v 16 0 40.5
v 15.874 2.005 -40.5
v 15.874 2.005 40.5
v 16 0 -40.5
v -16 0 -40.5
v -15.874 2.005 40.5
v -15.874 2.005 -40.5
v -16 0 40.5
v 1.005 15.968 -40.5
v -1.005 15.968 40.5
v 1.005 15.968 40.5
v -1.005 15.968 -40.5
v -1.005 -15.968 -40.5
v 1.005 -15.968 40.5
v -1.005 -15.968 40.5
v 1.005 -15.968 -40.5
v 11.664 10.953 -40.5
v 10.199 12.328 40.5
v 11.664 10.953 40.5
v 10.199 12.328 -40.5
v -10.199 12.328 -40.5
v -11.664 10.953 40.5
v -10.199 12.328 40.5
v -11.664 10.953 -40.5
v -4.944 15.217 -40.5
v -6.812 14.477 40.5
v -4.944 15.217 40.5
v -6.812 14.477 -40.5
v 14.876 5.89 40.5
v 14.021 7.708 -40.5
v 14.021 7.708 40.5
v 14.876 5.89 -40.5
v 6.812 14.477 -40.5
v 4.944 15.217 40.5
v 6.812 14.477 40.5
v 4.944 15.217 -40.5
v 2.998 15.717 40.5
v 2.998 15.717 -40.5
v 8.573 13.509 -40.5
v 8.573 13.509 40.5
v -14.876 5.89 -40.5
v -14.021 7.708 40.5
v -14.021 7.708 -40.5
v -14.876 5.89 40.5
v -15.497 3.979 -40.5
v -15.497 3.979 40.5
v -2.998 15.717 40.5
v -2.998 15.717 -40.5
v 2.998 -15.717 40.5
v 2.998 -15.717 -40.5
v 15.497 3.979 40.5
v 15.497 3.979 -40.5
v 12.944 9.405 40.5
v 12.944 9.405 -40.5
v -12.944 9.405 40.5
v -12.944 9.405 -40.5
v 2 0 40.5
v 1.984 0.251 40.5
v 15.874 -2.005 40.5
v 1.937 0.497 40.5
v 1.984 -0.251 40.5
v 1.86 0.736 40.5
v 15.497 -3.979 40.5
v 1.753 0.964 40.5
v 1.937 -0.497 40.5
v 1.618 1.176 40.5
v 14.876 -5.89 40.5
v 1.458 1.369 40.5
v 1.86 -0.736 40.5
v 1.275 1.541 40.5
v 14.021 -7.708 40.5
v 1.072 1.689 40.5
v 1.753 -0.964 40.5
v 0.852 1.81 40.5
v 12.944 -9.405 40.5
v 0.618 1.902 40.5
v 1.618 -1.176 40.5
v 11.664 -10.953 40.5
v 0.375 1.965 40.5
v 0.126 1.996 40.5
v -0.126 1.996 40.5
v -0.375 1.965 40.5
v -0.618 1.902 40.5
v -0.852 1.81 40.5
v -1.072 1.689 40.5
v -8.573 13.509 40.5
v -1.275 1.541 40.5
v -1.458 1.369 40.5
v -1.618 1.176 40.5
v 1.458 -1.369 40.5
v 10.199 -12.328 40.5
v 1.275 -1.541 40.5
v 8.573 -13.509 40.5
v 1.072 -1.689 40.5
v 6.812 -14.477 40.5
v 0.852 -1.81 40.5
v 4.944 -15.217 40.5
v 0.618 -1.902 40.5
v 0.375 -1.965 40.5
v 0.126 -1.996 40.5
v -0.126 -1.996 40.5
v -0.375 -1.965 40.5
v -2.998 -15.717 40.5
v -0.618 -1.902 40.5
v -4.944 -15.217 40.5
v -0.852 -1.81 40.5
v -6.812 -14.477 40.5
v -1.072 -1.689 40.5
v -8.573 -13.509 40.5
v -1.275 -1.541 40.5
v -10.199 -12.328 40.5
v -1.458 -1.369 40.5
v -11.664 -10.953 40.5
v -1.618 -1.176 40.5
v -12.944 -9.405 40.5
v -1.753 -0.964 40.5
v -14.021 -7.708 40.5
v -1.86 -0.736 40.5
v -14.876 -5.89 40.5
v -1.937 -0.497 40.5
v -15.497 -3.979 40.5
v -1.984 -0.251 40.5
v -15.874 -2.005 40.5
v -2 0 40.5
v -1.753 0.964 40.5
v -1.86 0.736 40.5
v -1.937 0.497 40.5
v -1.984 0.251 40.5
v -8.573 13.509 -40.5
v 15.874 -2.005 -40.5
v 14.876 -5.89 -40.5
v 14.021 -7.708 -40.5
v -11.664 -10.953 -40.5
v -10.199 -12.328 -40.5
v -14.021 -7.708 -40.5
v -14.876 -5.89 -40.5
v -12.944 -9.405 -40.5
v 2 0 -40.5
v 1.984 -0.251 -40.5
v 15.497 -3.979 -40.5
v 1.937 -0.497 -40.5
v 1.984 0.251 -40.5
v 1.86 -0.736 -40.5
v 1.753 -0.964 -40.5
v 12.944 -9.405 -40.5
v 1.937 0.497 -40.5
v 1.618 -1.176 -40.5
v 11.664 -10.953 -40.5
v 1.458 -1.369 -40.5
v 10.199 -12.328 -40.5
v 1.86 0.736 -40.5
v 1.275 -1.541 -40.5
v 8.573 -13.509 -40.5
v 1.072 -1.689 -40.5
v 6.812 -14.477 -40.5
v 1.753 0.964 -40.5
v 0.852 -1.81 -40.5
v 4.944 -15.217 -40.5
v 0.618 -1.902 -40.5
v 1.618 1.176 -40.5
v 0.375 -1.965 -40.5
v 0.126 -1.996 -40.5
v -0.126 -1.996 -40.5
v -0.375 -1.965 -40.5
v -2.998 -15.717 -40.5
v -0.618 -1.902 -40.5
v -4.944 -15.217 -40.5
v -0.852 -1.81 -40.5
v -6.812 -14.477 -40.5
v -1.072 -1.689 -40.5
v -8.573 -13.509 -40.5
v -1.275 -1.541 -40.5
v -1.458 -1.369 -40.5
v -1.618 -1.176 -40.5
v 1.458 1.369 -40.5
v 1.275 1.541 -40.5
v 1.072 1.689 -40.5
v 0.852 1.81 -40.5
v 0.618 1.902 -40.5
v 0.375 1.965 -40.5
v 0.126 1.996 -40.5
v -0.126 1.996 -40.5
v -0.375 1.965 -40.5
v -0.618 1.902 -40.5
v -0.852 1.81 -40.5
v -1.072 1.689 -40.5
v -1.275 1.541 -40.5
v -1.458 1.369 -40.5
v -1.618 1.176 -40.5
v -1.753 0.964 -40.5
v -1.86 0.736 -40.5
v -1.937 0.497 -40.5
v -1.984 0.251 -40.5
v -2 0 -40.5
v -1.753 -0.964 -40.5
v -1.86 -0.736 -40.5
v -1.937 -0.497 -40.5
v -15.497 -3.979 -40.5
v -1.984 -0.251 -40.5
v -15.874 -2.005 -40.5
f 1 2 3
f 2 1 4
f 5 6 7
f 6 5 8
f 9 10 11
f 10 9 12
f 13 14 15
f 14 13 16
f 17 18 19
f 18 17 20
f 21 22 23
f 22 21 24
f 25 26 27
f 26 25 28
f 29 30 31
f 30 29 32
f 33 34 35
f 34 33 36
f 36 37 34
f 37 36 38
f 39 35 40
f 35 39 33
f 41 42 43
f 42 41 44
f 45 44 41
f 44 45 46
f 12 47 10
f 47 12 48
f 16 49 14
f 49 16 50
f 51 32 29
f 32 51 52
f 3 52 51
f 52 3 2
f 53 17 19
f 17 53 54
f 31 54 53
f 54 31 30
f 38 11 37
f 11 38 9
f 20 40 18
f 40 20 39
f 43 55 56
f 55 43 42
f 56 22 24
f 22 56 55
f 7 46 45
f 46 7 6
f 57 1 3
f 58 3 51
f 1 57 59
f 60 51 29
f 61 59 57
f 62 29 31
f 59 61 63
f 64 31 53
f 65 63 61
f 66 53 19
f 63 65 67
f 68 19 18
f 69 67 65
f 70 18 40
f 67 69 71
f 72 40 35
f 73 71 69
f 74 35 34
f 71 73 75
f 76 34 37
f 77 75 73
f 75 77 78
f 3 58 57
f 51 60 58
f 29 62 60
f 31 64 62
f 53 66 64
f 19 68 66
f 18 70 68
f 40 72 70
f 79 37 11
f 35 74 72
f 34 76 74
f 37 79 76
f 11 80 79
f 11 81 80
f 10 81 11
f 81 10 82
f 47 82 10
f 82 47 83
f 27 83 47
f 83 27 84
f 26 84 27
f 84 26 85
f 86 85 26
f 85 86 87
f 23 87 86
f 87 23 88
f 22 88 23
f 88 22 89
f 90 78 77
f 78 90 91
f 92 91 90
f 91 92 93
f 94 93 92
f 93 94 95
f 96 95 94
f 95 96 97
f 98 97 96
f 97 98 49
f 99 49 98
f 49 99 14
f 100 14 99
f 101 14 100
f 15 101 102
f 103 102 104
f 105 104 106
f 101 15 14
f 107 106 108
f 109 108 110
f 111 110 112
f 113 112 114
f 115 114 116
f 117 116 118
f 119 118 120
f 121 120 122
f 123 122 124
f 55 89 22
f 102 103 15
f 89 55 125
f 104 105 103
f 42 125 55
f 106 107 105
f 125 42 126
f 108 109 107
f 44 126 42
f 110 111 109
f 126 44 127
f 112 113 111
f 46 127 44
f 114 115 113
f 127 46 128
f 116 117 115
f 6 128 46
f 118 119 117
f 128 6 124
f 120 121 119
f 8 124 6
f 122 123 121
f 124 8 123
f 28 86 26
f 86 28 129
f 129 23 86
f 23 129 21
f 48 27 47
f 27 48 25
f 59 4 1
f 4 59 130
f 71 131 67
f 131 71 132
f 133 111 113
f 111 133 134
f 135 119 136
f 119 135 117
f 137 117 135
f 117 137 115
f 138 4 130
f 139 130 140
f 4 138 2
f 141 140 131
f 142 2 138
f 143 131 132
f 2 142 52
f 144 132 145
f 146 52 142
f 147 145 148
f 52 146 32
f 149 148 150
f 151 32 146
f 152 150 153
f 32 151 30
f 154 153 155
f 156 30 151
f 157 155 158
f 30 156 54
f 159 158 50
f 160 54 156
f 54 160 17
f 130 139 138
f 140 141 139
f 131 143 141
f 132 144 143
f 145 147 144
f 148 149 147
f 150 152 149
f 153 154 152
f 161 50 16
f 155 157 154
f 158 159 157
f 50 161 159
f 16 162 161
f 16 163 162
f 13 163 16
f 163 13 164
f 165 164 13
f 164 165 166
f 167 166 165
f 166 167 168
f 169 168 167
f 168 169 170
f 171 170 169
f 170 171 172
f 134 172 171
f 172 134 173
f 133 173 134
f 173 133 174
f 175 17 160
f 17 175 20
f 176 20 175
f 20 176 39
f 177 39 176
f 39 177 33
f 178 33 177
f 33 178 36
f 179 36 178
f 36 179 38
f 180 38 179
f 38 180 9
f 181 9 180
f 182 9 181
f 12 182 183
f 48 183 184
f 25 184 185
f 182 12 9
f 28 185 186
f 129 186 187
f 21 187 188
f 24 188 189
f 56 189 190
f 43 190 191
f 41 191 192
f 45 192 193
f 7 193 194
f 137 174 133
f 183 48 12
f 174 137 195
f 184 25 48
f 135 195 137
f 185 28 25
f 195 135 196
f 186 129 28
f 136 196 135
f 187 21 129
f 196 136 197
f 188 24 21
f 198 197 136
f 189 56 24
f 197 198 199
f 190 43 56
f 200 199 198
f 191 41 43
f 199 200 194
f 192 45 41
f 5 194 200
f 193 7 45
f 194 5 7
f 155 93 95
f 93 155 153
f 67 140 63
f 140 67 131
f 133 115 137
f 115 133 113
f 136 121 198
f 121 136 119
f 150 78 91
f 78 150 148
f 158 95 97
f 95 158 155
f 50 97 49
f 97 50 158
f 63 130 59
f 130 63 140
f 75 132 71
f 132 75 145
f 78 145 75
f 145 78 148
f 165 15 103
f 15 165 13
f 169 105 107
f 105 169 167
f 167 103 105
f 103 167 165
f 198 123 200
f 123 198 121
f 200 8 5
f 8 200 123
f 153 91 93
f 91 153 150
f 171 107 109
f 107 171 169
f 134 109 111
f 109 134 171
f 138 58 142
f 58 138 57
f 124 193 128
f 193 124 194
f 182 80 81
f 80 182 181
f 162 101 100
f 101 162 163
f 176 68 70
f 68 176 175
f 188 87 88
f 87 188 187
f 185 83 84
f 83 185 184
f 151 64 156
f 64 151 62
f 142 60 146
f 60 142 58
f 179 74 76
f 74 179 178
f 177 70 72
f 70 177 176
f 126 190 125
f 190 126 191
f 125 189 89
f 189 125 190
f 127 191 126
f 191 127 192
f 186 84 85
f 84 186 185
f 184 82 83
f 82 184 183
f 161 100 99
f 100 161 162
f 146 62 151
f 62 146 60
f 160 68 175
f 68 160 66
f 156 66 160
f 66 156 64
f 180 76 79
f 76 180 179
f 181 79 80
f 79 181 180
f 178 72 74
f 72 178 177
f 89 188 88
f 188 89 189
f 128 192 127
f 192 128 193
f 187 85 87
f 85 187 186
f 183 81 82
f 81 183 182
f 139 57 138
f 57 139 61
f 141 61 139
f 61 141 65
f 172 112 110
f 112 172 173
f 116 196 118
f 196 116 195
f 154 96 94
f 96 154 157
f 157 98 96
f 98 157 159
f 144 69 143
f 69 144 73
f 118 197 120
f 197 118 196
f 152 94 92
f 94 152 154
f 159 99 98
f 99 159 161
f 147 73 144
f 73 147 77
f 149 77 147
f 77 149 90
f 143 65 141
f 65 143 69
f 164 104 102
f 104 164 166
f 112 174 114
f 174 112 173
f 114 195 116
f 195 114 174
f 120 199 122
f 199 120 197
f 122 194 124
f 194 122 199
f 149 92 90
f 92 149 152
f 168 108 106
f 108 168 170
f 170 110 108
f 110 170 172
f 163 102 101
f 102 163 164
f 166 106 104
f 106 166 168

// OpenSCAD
$fn = 50;


difference() {
	union() {
		translate(v = [0, 0, -40.5000000000]) {
			cylinder(h = 81, r = 16.0000000000);
		}
	}
	union() {
		translate(v = [0, 0, -100.0000000000]) {
			cylinder(h = 200, r = 2);
		}
	}
}
